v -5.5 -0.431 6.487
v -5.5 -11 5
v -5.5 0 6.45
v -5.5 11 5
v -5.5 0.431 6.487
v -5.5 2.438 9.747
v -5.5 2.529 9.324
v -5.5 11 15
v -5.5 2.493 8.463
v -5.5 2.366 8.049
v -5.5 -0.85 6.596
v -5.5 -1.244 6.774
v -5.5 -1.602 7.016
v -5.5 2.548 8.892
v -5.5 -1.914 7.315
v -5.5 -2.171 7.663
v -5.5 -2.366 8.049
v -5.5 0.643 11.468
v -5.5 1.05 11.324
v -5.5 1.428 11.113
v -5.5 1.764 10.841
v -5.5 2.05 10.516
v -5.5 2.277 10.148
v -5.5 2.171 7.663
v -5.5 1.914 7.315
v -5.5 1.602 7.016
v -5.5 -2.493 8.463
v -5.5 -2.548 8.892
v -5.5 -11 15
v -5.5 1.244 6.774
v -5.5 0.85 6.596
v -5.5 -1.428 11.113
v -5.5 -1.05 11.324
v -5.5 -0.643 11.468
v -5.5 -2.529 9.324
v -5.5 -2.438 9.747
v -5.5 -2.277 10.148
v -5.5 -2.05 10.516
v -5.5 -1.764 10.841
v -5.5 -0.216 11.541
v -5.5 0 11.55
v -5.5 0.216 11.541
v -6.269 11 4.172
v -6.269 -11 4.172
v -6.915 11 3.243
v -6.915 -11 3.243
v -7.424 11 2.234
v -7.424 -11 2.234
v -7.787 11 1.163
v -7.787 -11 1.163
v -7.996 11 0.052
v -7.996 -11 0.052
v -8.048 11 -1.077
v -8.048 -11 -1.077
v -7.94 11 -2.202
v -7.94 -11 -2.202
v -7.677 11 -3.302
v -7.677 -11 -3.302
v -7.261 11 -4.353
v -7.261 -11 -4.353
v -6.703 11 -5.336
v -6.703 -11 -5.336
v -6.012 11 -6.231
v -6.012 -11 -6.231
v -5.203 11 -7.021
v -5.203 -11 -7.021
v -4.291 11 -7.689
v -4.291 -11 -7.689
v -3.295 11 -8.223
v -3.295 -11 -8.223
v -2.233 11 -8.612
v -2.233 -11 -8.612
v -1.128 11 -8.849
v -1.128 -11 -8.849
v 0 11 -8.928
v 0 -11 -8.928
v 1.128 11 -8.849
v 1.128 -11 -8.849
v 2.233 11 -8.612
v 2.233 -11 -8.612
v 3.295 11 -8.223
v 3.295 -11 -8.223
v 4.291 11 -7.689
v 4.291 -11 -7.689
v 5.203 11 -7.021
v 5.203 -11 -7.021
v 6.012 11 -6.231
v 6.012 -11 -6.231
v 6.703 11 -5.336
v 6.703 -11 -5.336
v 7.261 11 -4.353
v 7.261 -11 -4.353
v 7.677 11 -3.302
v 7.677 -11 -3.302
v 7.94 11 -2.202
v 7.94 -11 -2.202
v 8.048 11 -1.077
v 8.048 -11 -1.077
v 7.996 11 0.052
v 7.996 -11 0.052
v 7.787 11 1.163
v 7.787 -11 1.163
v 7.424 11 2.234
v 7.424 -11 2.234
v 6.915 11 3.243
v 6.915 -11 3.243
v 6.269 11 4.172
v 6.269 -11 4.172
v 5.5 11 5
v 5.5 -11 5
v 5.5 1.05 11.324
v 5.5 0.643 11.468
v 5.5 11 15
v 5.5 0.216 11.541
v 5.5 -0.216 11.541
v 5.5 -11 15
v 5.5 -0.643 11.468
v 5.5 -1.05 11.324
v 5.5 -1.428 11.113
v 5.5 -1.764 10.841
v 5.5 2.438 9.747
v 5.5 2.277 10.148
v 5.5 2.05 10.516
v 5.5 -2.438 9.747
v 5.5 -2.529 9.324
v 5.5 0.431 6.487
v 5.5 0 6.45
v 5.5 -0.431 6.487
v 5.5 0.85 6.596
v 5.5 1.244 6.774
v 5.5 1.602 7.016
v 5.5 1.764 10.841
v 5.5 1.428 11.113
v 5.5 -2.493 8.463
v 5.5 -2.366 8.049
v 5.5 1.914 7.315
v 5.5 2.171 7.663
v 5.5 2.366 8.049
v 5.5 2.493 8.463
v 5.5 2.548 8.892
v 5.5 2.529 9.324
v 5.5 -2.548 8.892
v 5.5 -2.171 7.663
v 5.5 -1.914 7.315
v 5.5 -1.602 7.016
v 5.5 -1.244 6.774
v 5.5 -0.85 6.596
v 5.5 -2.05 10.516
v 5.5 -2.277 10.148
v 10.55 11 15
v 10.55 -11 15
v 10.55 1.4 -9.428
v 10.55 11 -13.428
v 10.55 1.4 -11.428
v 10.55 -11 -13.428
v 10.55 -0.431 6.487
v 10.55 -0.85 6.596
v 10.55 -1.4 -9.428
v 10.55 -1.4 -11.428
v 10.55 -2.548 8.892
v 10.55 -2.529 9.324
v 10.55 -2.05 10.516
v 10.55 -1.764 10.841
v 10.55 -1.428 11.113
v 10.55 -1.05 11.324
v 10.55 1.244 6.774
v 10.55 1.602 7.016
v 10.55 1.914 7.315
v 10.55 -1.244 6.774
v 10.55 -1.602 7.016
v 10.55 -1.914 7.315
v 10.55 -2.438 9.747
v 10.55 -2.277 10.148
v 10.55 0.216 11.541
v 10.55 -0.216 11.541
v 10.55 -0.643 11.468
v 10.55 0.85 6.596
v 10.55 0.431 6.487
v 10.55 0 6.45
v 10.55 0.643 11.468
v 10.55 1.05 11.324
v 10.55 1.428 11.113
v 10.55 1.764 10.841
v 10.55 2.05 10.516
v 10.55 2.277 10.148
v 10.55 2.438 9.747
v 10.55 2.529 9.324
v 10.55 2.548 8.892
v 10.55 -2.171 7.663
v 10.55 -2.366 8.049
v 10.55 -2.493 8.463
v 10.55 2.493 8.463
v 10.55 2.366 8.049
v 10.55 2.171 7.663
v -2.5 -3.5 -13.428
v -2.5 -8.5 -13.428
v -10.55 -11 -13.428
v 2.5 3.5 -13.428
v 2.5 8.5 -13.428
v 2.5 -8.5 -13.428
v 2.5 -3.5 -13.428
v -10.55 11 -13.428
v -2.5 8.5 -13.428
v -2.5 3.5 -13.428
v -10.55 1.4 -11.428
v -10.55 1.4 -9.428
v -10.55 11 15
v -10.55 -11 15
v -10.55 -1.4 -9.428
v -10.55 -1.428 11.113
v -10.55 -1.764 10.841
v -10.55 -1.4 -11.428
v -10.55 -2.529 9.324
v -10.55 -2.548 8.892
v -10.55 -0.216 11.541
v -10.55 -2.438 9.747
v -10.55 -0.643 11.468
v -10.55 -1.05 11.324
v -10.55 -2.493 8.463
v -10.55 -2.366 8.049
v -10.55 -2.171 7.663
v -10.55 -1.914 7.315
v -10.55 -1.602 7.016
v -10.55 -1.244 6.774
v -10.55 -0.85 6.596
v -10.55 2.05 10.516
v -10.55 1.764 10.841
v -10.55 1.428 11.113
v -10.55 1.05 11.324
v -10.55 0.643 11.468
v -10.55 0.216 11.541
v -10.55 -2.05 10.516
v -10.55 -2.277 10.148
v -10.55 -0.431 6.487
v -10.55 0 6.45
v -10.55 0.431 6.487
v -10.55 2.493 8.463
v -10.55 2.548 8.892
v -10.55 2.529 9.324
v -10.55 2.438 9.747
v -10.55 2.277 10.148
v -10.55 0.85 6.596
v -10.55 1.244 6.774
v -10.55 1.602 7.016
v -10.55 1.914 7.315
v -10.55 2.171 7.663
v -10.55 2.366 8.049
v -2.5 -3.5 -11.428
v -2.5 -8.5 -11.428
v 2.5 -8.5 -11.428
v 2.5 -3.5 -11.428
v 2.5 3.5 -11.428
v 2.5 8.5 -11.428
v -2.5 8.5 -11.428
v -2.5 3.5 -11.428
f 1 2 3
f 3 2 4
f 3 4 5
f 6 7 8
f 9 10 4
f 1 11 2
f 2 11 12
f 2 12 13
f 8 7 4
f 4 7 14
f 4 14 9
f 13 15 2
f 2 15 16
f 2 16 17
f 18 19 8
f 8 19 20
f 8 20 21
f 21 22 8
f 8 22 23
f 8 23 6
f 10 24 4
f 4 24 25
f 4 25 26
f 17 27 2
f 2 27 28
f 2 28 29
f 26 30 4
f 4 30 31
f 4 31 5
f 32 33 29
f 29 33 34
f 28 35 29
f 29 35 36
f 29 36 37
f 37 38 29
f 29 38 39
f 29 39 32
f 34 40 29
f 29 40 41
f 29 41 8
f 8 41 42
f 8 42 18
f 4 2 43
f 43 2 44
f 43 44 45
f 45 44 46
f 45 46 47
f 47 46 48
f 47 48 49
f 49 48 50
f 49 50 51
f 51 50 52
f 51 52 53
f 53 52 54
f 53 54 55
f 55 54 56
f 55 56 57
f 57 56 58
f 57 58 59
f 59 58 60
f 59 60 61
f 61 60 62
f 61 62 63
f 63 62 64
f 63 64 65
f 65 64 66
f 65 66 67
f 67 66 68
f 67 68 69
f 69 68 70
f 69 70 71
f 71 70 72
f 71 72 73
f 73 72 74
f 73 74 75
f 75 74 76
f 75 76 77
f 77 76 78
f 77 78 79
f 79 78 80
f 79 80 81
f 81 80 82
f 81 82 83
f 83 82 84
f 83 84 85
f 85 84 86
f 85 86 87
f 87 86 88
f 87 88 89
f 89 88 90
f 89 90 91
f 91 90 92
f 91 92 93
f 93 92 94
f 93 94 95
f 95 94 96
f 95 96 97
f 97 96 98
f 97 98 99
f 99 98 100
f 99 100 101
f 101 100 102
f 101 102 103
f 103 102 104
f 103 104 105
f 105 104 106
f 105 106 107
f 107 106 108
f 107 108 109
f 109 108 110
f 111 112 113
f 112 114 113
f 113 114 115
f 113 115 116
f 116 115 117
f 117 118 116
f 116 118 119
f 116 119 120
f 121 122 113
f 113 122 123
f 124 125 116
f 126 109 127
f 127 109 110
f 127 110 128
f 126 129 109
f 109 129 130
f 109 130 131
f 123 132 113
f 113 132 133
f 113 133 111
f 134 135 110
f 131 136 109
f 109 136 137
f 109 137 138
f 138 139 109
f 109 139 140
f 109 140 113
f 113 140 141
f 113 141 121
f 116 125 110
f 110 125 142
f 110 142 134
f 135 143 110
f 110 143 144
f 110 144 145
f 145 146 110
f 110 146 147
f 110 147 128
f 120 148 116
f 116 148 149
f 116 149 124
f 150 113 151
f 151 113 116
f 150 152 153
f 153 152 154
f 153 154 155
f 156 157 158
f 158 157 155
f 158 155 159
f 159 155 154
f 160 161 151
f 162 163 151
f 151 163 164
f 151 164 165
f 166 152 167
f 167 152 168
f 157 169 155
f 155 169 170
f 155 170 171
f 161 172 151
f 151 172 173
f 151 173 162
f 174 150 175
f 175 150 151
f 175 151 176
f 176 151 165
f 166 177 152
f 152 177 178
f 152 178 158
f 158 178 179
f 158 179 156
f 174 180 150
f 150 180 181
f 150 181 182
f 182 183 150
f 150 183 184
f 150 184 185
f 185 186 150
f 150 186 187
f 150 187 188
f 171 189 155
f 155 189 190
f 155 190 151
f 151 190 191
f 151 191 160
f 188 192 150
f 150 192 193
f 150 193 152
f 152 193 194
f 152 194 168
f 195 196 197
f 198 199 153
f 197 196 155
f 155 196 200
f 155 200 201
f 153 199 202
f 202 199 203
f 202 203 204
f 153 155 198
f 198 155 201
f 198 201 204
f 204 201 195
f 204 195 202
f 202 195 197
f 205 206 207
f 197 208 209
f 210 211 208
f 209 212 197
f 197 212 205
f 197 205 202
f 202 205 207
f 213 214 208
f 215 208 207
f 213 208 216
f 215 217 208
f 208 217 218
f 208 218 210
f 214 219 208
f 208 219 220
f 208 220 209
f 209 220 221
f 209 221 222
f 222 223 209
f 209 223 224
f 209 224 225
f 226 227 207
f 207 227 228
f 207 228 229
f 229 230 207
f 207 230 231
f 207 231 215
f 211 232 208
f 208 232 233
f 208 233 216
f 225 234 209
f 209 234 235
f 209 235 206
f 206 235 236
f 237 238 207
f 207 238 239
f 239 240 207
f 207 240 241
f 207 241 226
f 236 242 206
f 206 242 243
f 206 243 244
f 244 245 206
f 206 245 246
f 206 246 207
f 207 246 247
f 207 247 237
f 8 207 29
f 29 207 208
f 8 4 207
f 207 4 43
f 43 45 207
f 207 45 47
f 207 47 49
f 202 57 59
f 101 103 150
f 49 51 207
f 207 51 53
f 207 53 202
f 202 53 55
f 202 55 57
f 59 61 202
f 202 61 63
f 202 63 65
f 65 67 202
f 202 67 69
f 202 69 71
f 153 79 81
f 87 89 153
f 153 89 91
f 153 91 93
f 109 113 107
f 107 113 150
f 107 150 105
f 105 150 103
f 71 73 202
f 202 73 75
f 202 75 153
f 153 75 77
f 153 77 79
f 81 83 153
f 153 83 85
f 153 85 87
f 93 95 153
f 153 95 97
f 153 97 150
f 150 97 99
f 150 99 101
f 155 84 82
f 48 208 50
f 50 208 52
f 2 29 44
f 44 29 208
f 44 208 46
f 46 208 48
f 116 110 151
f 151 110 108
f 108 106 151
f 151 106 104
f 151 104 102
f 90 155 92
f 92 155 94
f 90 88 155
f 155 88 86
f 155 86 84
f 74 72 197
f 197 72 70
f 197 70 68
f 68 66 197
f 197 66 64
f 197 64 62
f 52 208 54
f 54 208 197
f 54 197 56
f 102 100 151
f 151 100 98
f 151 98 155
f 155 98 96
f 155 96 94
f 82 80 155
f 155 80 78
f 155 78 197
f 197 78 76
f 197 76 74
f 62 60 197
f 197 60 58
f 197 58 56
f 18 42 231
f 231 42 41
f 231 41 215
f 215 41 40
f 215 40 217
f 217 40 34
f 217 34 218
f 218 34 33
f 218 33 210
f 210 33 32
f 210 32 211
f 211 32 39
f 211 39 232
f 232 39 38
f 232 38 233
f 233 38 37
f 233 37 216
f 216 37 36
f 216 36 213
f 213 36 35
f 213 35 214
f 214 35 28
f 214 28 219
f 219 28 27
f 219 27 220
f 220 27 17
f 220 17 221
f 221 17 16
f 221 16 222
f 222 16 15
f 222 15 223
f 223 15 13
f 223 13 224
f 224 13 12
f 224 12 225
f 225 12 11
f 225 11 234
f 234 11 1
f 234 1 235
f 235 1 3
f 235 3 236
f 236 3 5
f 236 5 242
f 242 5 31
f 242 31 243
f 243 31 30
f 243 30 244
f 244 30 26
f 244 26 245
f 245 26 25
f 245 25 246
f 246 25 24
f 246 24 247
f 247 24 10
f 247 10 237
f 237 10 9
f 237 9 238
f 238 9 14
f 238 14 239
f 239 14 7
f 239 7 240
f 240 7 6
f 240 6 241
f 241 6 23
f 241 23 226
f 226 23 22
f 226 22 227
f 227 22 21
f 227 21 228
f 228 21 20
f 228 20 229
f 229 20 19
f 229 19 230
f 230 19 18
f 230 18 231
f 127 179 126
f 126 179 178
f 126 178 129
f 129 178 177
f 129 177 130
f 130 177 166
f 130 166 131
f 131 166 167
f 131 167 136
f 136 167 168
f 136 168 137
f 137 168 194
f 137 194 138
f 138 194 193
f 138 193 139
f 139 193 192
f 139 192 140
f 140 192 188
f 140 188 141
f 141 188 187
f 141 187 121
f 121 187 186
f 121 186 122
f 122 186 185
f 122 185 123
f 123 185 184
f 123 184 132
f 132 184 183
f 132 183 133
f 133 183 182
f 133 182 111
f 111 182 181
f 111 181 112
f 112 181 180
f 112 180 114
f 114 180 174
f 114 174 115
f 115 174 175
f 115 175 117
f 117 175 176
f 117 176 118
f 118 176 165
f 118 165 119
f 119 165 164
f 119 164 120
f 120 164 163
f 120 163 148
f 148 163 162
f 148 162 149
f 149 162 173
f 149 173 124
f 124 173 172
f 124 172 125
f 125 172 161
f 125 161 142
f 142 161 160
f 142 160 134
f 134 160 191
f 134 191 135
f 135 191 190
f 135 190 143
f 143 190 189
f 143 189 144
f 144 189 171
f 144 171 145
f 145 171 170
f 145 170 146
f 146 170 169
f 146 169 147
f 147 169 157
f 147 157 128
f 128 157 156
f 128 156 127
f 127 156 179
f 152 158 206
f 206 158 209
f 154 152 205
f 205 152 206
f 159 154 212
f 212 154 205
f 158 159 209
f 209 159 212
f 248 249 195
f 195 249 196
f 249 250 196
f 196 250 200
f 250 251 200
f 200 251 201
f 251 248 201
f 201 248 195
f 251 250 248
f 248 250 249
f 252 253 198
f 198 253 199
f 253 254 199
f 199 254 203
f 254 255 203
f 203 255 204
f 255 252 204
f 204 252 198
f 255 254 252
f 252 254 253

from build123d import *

# Parameters (mm, degrees)
BOSS_EXTRUDE1_DEPTH = 11
CUT_EXTRUDE1_REACH  = 30.128
SKETCH2_R           = 2.55
SKETCH4_W           = 2
SKETCH4_H           = 2.8
CUT_EXTRUDE3_DEPTH  = 21.1
SKETCH5_W           = 5
SKETCH5_H           = 5
CUT_EXTRUDE5_DEPTH  = 2


with BuildPart() as part:
    # Sketch1 → Boss-Extrude1 (new, symmetric)
    with BuildSketch(Plane(origin=(0, 0, 0), x_dir=(1, 0, 0), z_dir=(0, 1, 0))):
        with BuildLine():
            Line((-5.5, -15), (-10.55, -15))
            Line((-10.55, -15), (-10.55, 13.42813746))
            Line((-10.55, 13.42813746), (10.55, 13.42813746))
            Line((10.55, 13.42813746), (10.55, -15))
            Line((10.55, -15), (5.5, -15))
            Line((5.5, -15), (5.5, -5))
            ThreePointArc((5.5, -5), (0, 8.92813746), (-5.5, -5))
            Line((-5.5, -5), (-5.5, -15))
        make_face()
    extrude(amount=BOSS_EXTRUDE1_DEPTH, both=True)

    # Cut-Extrude1: up to this face of the body (flat: up to its plane)
    cut_extrude1_end = Plane(part.part.faces().sort_by_distance((-10.55, 0, 0.78593127))[0])
    # Sketch2 → Cut-Extrude1 (cut, up to the picked face)
    with BuildSketch(Plane(origin=(10.55, 0, 0), x_dir=(0, 0, -1), z_dir=(1, 0, 0)), mode=Mode.PRIVATE) as cut_extrude1_sk1:
        with Locations((-9, 0)):
            Circle(SKETCH2_R)
    cut_extrude1_tool1 = split(extrude(cut_extrude1_sk1.sketch, amount=-CUT_EXTRUDE1_REACH, mode=Mode.PRIVATE), bisect_by=cut_extrude1_end, keep=Keep.BOTH, mode=Mode.PRIVATE)
    add(cut_extrude1_tool1.solids().sort_by(Axis((10.55, 0, 9), (-1, 0, 0)))[0], mode=Mode.SUBTRACT)

    # Sketch4 → Cut-Extrude3 (cut)
    with BuildSketch(Plane(origin=(10.55, 0, 0), x_dir=(0, 0, -1), z_dir=(1, 0, 0))):
        with Locations((10.42813746, 0)):
            Rectangle(SKETCH4_W, SKETCH4_H)
    extrude(amount=-CUT_EXTRUDE3_DEPTH, mode=Mode.SUBTRACT)

    # Sketch5 → Cut-Extrude5 (cut)
    with BuildSketch(Plane(origin=(0, 0, -13.42813746), x_dir=(-1, 0, 0), z_dir=(0, 0, -1))):
        with Locations((0, 6)):
            Rectangle(SKETCH5_W, SKETCH5_H)
        with Locations((0, -6)):
            Rectangle(SKETCH5_W, SKETCH5_H)
    extrude(amount=-CUT_EXTRUDE5_DEPTH, mode=Mode.SUBTRACT)


solid = part.part
